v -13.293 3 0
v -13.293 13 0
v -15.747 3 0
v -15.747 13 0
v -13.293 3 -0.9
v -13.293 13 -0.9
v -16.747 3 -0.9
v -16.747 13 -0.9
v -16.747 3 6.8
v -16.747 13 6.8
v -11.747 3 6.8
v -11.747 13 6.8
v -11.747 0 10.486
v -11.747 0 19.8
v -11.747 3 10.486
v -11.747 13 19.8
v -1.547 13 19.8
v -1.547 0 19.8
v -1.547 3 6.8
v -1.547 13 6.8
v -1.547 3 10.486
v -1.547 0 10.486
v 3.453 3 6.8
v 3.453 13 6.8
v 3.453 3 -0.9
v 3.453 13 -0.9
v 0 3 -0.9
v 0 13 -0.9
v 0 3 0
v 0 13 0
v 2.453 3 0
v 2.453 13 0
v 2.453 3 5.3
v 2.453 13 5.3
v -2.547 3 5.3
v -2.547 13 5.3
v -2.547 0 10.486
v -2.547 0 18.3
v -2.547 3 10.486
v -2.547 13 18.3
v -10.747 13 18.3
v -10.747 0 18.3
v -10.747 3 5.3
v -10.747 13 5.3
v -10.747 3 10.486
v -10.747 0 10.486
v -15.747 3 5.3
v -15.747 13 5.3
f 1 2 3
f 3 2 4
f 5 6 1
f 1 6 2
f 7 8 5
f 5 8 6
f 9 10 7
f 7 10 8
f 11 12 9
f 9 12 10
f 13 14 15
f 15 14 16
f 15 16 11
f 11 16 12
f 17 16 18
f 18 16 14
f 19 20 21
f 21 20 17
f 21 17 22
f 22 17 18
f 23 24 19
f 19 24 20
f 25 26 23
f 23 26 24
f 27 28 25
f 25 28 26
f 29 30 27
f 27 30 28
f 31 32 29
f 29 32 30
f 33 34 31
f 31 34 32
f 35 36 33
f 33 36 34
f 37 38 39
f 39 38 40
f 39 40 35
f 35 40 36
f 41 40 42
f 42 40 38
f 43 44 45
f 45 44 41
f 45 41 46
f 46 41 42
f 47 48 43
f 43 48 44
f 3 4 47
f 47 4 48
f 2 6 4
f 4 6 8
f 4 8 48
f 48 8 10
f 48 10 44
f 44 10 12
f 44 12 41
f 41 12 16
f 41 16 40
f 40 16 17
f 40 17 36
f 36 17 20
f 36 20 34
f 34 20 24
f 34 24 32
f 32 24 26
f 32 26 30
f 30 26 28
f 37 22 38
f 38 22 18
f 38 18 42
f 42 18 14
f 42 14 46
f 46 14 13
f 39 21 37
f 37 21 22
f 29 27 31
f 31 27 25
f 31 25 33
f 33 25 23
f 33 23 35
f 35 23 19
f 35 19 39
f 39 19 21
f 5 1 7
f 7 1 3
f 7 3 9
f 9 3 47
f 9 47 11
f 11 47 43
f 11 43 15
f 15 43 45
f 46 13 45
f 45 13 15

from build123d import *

# Parameters (mm, degrees)
BOSS_EXTRUDE1_DEPTH     = 13
CUT_EXTRUDE1_DEPTH      = 32.130049791
CUT_EXTRUDE1_DEPTH_BACK = 32.130049791
SKETCH2_W               = 11.385886766
SKETCH2_H               = 3


with BuildPart() as part:
    # Sketch1 → Boss-Extrude1 (new body)
    with BuildSketch(Plane(origin=(0, 0, 0), x_dir=(1, 0, 0), z_dir=(0, 1, 0))):
        Polygon((2.453447834, -5.3), (-2.546552166, -5.3), (-2.546552166, -18.3), (-10.746552166, -18.3), (-10.746552166, -5.3), (-15.746552166, -5.3), (-15.746552166, 0), (-13.293104332, 0), (-13.293104332, 0.9), (-16.746552166, 0.9), (-16.746552166, -6.8), (-11.746552166, -6.8), (-11.746552166, -19.8), (-1.546552166, -19.8), (-1.546552166, -6.8), (3.453447834, -6.8), (3.453447834, 0.9), (0, 0.9), (0, 0), (2.453447834, 0), align=None)
    extrude(amount=BOSS_EXTRUDE1_DEPTH)

    # Sketch2 → Cut-Extrude1 (cut, two sides: drawn at the far end of the back side and taken through both)
    with BuildSketch(Plane.ZY.offset(16.746552166).offset(-CUT_EXTRUDE1_DEPTH_BACK)):
        with Locations((4.792943383, 1.5)):
            Rectangle(SKETCH2_W, SKETCH2_H)
    extrude(amount=CUT_EXTRUDE1_DEPTH + CUT_EXTRUDE1_DEPTH_BACK, mode=Mode.SUBTRACT)


solid = part.part
